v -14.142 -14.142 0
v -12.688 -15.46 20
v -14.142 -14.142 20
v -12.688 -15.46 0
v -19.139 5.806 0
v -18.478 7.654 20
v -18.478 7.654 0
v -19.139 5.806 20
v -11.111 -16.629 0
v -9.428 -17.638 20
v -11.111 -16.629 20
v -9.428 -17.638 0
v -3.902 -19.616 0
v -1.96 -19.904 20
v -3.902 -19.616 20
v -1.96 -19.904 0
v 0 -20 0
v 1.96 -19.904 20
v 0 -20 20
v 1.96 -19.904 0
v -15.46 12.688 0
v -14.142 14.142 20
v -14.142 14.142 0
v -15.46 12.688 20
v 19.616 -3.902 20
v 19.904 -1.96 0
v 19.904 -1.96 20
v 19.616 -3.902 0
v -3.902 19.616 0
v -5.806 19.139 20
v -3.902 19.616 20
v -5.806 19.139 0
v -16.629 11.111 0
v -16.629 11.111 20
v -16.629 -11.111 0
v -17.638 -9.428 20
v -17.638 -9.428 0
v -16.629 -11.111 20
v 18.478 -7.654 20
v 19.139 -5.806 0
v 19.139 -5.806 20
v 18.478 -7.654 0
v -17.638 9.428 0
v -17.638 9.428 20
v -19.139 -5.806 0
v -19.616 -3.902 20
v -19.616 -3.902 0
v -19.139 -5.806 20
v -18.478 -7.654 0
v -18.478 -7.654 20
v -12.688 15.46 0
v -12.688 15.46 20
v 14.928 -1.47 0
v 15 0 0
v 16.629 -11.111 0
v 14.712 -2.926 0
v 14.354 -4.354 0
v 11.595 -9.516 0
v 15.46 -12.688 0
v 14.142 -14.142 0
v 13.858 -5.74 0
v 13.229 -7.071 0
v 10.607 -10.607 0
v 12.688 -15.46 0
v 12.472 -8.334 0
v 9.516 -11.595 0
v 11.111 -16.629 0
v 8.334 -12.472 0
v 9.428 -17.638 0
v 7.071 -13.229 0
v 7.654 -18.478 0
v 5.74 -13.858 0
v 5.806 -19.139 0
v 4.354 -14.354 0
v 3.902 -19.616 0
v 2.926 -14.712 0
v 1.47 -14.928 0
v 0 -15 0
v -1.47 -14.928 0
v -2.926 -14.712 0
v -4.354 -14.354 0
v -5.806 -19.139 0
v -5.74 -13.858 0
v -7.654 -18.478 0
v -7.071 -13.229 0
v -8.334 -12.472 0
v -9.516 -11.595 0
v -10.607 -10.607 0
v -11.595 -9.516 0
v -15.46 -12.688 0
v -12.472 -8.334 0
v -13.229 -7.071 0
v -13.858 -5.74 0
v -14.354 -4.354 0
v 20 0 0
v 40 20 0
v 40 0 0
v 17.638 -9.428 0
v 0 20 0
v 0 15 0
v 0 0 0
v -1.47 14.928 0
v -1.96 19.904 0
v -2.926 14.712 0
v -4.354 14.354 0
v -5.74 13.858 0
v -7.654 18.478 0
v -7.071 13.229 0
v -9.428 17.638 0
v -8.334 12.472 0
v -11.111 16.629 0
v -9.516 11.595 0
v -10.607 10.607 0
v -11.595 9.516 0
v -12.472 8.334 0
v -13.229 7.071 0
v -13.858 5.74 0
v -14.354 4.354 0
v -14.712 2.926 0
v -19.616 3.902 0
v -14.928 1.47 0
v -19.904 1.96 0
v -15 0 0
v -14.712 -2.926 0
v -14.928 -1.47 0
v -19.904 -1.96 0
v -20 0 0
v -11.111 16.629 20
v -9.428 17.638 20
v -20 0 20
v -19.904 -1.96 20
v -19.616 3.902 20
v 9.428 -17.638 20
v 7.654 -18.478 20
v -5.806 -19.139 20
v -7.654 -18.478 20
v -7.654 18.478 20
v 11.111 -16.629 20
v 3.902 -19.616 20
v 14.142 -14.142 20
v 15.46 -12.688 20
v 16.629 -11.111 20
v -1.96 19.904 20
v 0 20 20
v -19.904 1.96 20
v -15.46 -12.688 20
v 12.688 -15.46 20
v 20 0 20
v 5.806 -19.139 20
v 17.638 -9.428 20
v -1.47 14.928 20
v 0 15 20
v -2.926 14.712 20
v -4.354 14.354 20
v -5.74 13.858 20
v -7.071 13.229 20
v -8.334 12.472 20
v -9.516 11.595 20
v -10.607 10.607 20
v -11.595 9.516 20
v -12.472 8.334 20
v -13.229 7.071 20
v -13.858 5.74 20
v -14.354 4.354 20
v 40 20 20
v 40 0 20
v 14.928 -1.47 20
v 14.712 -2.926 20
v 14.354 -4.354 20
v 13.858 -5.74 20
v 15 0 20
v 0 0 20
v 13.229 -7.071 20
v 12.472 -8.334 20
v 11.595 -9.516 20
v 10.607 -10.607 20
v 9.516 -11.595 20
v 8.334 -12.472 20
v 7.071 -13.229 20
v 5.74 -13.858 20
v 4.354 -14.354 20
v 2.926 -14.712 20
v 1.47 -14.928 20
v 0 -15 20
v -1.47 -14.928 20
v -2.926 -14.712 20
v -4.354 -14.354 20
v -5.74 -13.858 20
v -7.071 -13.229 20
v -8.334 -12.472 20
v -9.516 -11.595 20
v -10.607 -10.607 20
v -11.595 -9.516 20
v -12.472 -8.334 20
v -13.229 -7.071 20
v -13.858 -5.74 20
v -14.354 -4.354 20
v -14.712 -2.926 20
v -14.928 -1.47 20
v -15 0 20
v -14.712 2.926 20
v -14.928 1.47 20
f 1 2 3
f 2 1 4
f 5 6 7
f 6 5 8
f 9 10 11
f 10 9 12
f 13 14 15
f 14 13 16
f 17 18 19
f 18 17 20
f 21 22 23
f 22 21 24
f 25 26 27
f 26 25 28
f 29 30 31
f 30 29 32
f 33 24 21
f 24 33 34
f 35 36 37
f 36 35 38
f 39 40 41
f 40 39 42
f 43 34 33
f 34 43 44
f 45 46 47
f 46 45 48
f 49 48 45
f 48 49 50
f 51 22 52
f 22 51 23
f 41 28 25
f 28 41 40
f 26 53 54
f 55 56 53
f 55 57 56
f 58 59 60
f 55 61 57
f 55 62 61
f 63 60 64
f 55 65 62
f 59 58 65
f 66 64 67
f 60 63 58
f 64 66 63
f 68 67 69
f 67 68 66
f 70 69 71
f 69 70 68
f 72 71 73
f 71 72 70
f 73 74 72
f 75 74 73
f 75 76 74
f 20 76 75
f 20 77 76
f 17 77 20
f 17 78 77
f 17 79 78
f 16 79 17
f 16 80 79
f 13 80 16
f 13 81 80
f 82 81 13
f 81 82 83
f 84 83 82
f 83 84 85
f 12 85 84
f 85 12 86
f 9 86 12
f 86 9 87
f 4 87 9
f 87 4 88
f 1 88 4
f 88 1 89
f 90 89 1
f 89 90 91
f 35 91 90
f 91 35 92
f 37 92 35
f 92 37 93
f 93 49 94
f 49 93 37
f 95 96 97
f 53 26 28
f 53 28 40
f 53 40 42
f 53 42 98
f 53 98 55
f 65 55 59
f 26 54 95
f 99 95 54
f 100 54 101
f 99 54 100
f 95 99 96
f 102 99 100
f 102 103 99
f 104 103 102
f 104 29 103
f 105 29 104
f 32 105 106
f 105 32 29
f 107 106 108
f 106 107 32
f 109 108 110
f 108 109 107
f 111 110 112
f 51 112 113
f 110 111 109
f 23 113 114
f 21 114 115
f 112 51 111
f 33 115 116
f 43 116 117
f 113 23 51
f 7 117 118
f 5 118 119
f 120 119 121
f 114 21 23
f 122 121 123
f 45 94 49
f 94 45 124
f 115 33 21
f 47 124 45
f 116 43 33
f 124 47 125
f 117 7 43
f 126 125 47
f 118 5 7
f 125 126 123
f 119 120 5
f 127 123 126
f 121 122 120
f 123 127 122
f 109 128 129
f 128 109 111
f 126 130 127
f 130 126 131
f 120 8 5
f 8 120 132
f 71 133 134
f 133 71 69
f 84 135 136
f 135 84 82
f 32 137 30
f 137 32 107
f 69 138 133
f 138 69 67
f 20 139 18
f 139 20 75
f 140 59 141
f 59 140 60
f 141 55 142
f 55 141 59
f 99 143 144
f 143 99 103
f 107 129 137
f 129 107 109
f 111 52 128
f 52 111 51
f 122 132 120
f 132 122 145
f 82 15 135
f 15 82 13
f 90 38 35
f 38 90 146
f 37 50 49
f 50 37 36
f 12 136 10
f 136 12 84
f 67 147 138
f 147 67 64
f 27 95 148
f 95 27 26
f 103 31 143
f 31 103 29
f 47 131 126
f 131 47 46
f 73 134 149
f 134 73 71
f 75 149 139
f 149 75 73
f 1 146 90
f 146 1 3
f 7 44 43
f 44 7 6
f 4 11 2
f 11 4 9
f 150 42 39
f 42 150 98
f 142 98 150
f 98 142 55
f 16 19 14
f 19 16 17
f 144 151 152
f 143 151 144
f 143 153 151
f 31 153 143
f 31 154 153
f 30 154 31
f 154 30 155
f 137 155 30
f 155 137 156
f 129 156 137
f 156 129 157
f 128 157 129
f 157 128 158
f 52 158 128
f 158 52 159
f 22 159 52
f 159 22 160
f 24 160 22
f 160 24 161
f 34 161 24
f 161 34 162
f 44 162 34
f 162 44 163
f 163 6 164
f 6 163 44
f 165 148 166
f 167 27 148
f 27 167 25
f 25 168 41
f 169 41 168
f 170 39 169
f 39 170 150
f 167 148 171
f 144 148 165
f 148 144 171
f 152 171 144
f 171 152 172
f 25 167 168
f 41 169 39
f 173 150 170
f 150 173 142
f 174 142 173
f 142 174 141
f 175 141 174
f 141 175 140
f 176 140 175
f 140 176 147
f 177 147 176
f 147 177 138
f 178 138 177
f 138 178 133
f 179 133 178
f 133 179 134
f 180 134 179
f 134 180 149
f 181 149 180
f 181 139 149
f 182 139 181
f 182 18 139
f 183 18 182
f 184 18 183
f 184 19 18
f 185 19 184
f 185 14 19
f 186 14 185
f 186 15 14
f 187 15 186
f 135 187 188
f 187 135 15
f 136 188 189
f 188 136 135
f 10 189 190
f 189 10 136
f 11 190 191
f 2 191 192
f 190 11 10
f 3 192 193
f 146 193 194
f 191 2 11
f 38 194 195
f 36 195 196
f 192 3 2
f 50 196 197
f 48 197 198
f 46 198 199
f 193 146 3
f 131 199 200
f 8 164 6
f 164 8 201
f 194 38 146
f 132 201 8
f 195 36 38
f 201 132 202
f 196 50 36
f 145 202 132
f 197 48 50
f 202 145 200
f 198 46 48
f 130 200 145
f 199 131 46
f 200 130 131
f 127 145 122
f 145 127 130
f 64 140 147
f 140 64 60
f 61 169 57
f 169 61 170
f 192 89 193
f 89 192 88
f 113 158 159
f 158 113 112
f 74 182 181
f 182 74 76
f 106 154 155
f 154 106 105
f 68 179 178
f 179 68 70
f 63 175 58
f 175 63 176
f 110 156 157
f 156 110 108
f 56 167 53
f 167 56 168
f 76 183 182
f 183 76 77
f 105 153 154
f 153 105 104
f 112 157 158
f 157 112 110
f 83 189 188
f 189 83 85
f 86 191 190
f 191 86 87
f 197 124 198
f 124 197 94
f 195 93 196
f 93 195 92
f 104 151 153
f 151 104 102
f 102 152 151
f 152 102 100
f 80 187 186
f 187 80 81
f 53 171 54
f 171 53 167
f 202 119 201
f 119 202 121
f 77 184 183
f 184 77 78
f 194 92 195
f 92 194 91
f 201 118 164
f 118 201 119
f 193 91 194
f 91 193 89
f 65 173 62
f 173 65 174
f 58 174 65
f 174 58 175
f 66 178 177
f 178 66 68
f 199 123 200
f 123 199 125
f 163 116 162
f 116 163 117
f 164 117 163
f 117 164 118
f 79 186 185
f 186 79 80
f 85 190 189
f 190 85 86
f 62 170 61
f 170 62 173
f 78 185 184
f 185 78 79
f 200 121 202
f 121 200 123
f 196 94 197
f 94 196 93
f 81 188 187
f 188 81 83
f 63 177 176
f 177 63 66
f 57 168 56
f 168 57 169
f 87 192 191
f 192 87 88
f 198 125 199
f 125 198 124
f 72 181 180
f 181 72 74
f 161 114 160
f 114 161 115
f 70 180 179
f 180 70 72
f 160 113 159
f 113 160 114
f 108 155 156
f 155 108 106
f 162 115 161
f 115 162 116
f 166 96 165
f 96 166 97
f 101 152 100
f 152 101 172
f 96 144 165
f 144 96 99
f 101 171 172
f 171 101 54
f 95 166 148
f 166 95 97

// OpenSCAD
$fn=64;

cube([40, 20, 20]);

difference() {
    cylinder(d=40, h=20);

    cylinder(d=30, h=20);

}
